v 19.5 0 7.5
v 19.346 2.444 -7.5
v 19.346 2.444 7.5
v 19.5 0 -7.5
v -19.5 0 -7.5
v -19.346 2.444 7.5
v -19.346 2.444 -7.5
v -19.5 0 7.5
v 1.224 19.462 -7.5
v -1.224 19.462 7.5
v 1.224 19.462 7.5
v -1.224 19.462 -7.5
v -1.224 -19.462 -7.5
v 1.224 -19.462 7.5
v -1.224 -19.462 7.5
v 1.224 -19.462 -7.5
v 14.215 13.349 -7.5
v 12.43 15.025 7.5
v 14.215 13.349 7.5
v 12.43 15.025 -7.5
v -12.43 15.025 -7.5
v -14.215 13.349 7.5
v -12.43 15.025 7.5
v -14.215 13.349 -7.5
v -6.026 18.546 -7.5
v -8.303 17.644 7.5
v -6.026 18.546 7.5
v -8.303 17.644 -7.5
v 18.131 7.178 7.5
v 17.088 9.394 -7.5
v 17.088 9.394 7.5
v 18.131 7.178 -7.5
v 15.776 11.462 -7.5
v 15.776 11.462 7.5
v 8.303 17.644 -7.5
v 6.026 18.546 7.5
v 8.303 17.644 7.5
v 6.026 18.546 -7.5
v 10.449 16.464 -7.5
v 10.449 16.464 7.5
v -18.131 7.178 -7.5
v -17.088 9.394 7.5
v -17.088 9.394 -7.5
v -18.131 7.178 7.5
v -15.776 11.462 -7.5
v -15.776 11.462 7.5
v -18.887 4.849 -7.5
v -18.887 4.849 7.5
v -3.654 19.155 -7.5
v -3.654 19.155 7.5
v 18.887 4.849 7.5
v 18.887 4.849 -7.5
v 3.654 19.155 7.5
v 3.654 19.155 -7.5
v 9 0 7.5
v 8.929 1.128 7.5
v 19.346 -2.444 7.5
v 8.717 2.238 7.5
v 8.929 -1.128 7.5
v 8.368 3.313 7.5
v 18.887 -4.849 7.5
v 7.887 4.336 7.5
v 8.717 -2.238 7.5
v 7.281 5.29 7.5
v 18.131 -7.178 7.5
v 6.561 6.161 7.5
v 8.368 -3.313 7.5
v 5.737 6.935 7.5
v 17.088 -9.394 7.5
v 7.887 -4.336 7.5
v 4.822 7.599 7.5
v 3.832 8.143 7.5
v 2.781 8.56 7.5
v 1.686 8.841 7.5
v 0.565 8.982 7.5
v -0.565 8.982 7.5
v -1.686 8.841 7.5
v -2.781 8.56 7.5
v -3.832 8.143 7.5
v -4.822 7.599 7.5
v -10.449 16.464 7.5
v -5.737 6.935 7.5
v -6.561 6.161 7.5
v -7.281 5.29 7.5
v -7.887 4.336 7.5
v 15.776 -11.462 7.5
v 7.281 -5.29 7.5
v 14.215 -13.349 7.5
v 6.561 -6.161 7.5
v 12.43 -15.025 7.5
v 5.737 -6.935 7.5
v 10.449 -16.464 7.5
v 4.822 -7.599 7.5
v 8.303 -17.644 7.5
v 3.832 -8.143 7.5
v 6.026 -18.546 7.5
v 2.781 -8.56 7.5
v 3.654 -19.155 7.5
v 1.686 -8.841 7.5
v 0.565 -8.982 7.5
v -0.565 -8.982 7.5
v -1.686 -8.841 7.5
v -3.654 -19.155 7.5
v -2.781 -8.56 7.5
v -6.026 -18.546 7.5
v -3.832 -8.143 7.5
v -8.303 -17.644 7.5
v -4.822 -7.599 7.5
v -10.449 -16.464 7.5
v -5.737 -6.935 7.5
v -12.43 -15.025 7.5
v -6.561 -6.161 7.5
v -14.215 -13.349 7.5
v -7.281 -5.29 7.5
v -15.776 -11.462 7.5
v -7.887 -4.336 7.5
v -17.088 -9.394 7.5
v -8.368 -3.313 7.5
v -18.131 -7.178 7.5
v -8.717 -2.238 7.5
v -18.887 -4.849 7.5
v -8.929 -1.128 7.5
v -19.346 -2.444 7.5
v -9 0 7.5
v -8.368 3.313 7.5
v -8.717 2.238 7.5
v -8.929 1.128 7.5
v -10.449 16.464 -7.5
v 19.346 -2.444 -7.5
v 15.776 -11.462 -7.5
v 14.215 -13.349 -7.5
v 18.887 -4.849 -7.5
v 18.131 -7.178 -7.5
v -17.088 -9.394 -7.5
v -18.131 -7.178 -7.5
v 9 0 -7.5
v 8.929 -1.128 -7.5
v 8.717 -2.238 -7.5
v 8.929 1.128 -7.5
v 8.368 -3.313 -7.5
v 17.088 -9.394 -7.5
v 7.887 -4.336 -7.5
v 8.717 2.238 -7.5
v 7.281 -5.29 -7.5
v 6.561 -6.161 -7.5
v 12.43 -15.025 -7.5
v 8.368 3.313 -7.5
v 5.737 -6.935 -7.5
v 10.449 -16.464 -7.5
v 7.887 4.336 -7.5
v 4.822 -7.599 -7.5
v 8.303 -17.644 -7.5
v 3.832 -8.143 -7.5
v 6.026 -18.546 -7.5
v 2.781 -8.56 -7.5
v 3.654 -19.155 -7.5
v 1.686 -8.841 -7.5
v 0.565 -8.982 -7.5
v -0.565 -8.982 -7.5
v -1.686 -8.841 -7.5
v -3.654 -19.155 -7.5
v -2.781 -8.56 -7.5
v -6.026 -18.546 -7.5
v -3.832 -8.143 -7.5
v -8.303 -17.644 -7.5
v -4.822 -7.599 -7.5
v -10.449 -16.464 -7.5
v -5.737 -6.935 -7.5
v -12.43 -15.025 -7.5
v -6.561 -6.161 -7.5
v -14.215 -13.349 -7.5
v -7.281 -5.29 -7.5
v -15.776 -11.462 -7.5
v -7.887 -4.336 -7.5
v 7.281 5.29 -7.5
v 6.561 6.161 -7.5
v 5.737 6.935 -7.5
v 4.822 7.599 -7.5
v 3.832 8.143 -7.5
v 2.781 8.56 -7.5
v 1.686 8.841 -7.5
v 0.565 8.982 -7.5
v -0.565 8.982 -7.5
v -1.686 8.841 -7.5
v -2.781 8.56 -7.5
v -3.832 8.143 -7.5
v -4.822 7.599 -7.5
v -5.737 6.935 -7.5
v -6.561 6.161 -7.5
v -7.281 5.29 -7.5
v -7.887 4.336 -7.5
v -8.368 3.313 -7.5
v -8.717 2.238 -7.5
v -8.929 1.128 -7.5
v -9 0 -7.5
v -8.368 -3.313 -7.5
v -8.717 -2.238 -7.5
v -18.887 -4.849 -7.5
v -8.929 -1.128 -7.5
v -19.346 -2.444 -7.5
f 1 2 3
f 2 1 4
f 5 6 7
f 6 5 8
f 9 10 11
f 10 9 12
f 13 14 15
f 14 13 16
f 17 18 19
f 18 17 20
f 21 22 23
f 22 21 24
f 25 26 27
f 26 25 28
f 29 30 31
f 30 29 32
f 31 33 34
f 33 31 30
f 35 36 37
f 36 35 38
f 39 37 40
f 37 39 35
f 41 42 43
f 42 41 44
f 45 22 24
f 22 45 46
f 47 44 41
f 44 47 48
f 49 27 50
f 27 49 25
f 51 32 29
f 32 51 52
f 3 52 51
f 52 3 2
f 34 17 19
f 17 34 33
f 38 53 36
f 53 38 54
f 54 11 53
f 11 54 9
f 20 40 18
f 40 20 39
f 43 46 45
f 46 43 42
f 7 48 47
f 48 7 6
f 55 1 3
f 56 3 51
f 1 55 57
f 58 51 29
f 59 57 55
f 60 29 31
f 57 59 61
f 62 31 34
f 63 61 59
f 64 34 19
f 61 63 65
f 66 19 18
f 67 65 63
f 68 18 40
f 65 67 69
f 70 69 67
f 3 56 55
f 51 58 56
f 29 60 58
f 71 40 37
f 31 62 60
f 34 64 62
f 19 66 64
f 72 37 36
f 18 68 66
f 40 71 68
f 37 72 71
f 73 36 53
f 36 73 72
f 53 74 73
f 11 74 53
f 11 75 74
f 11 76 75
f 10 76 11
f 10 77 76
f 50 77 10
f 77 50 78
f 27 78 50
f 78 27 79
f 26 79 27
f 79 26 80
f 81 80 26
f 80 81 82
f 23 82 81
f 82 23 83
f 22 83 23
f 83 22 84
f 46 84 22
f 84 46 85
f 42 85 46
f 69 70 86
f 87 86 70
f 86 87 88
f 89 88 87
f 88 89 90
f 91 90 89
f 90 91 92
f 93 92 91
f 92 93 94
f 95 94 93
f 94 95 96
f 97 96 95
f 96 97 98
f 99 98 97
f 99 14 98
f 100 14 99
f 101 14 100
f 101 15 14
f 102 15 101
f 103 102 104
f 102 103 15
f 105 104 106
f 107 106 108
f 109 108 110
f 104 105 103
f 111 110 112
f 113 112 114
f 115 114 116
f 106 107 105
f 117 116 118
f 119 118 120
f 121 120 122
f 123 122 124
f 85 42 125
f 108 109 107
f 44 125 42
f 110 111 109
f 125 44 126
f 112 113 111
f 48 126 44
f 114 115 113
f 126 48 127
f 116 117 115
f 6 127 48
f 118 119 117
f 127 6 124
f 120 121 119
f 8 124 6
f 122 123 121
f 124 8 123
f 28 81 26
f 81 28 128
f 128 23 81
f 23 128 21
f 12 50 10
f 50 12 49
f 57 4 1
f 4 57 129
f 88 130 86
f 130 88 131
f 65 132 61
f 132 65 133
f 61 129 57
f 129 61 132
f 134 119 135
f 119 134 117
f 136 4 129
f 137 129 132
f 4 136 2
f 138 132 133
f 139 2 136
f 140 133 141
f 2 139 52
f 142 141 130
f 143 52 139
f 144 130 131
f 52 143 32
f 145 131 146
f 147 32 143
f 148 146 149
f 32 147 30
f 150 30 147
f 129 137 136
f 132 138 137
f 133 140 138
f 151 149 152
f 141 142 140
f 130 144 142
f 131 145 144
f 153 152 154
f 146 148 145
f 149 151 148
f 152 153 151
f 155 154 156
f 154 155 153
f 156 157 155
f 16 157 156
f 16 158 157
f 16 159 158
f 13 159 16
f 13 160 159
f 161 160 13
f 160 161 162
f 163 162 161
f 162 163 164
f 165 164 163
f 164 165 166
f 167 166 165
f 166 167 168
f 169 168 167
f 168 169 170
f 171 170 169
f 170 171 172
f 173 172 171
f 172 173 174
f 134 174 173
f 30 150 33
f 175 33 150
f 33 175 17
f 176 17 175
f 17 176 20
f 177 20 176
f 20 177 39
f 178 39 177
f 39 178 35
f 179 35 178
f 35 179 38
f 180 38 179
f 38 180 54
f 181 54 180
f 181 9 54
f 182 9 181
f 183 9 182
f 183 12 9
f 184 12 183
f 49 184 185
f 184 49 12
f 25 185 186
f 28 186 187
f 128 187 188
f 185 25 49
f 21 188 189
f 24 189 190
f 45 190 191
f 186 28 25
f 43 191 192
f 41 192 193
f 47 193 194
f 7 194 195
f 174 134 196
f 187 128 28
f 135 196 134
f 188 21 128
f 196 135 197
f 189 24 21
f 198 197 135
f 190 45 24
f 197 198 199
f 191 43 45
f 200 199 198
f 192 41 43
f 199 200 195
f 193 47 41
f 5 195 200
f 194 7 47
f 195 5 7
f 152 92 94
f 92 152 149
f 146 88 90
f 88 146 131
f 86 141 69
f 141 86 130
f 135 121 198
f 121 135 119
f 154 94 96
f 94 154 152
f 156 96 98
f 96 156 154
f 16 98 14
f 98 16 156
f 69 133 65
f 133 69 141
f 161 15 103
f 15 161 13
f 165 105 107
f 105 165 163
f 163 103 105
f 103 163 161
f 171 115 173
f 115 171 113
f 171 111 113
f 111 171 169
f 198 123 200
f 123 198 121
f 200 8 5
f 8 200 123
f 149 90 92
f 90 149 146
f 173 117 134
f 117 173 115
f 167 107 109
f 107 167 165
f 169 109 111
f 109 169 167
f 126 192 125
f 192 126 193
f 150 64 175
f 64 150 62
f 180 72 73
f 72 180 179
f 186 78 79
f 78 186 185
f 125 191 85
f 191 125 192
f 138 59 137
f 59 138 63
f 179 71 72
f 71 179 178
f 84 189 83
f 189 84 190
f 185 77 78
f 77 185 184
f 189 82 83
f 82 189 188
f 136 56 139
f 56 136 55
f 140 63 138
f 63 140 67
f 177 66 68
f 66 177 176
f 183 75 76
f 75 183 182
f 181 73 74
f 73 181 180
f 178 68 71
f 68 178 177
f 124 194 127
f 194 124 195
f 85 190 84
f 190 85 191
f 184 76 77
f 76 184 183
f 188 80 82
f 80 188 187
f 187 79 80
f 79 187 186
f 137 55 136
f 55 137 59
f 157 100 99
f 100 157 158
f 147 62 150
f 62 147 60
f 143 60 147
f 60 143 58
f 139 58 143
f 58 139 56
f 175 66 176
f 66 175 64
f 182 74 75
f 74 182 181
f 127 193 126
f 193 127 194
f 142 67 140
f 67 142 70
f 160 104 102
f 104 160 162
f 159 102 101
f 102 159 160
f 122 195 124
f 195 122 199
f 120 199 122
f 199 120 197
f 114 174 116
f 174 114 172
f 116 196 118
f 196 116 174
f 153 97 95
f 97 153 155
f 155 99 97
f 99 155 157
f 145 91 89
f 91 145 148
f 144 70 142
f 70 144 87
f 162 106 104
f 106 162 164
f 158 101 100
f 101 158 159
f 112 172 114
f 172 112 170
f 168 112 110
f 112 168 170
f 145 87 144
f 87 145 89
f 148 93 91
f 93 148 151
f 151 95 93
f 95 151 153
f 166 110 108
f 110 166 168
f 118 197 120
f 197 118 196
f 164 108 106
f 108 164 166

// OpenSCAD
$fn = 50;


difference() {
	union() {
		translate(v = [0, 0, -7.5000000000]) {
			cylinder(h = 15, r = 19.5000000000);
		}
	}
	union() {
		translate(v = [0, 0, -100.0000000000]) {
			cylinder(h = 200, r = 9);
		}
	}
}
